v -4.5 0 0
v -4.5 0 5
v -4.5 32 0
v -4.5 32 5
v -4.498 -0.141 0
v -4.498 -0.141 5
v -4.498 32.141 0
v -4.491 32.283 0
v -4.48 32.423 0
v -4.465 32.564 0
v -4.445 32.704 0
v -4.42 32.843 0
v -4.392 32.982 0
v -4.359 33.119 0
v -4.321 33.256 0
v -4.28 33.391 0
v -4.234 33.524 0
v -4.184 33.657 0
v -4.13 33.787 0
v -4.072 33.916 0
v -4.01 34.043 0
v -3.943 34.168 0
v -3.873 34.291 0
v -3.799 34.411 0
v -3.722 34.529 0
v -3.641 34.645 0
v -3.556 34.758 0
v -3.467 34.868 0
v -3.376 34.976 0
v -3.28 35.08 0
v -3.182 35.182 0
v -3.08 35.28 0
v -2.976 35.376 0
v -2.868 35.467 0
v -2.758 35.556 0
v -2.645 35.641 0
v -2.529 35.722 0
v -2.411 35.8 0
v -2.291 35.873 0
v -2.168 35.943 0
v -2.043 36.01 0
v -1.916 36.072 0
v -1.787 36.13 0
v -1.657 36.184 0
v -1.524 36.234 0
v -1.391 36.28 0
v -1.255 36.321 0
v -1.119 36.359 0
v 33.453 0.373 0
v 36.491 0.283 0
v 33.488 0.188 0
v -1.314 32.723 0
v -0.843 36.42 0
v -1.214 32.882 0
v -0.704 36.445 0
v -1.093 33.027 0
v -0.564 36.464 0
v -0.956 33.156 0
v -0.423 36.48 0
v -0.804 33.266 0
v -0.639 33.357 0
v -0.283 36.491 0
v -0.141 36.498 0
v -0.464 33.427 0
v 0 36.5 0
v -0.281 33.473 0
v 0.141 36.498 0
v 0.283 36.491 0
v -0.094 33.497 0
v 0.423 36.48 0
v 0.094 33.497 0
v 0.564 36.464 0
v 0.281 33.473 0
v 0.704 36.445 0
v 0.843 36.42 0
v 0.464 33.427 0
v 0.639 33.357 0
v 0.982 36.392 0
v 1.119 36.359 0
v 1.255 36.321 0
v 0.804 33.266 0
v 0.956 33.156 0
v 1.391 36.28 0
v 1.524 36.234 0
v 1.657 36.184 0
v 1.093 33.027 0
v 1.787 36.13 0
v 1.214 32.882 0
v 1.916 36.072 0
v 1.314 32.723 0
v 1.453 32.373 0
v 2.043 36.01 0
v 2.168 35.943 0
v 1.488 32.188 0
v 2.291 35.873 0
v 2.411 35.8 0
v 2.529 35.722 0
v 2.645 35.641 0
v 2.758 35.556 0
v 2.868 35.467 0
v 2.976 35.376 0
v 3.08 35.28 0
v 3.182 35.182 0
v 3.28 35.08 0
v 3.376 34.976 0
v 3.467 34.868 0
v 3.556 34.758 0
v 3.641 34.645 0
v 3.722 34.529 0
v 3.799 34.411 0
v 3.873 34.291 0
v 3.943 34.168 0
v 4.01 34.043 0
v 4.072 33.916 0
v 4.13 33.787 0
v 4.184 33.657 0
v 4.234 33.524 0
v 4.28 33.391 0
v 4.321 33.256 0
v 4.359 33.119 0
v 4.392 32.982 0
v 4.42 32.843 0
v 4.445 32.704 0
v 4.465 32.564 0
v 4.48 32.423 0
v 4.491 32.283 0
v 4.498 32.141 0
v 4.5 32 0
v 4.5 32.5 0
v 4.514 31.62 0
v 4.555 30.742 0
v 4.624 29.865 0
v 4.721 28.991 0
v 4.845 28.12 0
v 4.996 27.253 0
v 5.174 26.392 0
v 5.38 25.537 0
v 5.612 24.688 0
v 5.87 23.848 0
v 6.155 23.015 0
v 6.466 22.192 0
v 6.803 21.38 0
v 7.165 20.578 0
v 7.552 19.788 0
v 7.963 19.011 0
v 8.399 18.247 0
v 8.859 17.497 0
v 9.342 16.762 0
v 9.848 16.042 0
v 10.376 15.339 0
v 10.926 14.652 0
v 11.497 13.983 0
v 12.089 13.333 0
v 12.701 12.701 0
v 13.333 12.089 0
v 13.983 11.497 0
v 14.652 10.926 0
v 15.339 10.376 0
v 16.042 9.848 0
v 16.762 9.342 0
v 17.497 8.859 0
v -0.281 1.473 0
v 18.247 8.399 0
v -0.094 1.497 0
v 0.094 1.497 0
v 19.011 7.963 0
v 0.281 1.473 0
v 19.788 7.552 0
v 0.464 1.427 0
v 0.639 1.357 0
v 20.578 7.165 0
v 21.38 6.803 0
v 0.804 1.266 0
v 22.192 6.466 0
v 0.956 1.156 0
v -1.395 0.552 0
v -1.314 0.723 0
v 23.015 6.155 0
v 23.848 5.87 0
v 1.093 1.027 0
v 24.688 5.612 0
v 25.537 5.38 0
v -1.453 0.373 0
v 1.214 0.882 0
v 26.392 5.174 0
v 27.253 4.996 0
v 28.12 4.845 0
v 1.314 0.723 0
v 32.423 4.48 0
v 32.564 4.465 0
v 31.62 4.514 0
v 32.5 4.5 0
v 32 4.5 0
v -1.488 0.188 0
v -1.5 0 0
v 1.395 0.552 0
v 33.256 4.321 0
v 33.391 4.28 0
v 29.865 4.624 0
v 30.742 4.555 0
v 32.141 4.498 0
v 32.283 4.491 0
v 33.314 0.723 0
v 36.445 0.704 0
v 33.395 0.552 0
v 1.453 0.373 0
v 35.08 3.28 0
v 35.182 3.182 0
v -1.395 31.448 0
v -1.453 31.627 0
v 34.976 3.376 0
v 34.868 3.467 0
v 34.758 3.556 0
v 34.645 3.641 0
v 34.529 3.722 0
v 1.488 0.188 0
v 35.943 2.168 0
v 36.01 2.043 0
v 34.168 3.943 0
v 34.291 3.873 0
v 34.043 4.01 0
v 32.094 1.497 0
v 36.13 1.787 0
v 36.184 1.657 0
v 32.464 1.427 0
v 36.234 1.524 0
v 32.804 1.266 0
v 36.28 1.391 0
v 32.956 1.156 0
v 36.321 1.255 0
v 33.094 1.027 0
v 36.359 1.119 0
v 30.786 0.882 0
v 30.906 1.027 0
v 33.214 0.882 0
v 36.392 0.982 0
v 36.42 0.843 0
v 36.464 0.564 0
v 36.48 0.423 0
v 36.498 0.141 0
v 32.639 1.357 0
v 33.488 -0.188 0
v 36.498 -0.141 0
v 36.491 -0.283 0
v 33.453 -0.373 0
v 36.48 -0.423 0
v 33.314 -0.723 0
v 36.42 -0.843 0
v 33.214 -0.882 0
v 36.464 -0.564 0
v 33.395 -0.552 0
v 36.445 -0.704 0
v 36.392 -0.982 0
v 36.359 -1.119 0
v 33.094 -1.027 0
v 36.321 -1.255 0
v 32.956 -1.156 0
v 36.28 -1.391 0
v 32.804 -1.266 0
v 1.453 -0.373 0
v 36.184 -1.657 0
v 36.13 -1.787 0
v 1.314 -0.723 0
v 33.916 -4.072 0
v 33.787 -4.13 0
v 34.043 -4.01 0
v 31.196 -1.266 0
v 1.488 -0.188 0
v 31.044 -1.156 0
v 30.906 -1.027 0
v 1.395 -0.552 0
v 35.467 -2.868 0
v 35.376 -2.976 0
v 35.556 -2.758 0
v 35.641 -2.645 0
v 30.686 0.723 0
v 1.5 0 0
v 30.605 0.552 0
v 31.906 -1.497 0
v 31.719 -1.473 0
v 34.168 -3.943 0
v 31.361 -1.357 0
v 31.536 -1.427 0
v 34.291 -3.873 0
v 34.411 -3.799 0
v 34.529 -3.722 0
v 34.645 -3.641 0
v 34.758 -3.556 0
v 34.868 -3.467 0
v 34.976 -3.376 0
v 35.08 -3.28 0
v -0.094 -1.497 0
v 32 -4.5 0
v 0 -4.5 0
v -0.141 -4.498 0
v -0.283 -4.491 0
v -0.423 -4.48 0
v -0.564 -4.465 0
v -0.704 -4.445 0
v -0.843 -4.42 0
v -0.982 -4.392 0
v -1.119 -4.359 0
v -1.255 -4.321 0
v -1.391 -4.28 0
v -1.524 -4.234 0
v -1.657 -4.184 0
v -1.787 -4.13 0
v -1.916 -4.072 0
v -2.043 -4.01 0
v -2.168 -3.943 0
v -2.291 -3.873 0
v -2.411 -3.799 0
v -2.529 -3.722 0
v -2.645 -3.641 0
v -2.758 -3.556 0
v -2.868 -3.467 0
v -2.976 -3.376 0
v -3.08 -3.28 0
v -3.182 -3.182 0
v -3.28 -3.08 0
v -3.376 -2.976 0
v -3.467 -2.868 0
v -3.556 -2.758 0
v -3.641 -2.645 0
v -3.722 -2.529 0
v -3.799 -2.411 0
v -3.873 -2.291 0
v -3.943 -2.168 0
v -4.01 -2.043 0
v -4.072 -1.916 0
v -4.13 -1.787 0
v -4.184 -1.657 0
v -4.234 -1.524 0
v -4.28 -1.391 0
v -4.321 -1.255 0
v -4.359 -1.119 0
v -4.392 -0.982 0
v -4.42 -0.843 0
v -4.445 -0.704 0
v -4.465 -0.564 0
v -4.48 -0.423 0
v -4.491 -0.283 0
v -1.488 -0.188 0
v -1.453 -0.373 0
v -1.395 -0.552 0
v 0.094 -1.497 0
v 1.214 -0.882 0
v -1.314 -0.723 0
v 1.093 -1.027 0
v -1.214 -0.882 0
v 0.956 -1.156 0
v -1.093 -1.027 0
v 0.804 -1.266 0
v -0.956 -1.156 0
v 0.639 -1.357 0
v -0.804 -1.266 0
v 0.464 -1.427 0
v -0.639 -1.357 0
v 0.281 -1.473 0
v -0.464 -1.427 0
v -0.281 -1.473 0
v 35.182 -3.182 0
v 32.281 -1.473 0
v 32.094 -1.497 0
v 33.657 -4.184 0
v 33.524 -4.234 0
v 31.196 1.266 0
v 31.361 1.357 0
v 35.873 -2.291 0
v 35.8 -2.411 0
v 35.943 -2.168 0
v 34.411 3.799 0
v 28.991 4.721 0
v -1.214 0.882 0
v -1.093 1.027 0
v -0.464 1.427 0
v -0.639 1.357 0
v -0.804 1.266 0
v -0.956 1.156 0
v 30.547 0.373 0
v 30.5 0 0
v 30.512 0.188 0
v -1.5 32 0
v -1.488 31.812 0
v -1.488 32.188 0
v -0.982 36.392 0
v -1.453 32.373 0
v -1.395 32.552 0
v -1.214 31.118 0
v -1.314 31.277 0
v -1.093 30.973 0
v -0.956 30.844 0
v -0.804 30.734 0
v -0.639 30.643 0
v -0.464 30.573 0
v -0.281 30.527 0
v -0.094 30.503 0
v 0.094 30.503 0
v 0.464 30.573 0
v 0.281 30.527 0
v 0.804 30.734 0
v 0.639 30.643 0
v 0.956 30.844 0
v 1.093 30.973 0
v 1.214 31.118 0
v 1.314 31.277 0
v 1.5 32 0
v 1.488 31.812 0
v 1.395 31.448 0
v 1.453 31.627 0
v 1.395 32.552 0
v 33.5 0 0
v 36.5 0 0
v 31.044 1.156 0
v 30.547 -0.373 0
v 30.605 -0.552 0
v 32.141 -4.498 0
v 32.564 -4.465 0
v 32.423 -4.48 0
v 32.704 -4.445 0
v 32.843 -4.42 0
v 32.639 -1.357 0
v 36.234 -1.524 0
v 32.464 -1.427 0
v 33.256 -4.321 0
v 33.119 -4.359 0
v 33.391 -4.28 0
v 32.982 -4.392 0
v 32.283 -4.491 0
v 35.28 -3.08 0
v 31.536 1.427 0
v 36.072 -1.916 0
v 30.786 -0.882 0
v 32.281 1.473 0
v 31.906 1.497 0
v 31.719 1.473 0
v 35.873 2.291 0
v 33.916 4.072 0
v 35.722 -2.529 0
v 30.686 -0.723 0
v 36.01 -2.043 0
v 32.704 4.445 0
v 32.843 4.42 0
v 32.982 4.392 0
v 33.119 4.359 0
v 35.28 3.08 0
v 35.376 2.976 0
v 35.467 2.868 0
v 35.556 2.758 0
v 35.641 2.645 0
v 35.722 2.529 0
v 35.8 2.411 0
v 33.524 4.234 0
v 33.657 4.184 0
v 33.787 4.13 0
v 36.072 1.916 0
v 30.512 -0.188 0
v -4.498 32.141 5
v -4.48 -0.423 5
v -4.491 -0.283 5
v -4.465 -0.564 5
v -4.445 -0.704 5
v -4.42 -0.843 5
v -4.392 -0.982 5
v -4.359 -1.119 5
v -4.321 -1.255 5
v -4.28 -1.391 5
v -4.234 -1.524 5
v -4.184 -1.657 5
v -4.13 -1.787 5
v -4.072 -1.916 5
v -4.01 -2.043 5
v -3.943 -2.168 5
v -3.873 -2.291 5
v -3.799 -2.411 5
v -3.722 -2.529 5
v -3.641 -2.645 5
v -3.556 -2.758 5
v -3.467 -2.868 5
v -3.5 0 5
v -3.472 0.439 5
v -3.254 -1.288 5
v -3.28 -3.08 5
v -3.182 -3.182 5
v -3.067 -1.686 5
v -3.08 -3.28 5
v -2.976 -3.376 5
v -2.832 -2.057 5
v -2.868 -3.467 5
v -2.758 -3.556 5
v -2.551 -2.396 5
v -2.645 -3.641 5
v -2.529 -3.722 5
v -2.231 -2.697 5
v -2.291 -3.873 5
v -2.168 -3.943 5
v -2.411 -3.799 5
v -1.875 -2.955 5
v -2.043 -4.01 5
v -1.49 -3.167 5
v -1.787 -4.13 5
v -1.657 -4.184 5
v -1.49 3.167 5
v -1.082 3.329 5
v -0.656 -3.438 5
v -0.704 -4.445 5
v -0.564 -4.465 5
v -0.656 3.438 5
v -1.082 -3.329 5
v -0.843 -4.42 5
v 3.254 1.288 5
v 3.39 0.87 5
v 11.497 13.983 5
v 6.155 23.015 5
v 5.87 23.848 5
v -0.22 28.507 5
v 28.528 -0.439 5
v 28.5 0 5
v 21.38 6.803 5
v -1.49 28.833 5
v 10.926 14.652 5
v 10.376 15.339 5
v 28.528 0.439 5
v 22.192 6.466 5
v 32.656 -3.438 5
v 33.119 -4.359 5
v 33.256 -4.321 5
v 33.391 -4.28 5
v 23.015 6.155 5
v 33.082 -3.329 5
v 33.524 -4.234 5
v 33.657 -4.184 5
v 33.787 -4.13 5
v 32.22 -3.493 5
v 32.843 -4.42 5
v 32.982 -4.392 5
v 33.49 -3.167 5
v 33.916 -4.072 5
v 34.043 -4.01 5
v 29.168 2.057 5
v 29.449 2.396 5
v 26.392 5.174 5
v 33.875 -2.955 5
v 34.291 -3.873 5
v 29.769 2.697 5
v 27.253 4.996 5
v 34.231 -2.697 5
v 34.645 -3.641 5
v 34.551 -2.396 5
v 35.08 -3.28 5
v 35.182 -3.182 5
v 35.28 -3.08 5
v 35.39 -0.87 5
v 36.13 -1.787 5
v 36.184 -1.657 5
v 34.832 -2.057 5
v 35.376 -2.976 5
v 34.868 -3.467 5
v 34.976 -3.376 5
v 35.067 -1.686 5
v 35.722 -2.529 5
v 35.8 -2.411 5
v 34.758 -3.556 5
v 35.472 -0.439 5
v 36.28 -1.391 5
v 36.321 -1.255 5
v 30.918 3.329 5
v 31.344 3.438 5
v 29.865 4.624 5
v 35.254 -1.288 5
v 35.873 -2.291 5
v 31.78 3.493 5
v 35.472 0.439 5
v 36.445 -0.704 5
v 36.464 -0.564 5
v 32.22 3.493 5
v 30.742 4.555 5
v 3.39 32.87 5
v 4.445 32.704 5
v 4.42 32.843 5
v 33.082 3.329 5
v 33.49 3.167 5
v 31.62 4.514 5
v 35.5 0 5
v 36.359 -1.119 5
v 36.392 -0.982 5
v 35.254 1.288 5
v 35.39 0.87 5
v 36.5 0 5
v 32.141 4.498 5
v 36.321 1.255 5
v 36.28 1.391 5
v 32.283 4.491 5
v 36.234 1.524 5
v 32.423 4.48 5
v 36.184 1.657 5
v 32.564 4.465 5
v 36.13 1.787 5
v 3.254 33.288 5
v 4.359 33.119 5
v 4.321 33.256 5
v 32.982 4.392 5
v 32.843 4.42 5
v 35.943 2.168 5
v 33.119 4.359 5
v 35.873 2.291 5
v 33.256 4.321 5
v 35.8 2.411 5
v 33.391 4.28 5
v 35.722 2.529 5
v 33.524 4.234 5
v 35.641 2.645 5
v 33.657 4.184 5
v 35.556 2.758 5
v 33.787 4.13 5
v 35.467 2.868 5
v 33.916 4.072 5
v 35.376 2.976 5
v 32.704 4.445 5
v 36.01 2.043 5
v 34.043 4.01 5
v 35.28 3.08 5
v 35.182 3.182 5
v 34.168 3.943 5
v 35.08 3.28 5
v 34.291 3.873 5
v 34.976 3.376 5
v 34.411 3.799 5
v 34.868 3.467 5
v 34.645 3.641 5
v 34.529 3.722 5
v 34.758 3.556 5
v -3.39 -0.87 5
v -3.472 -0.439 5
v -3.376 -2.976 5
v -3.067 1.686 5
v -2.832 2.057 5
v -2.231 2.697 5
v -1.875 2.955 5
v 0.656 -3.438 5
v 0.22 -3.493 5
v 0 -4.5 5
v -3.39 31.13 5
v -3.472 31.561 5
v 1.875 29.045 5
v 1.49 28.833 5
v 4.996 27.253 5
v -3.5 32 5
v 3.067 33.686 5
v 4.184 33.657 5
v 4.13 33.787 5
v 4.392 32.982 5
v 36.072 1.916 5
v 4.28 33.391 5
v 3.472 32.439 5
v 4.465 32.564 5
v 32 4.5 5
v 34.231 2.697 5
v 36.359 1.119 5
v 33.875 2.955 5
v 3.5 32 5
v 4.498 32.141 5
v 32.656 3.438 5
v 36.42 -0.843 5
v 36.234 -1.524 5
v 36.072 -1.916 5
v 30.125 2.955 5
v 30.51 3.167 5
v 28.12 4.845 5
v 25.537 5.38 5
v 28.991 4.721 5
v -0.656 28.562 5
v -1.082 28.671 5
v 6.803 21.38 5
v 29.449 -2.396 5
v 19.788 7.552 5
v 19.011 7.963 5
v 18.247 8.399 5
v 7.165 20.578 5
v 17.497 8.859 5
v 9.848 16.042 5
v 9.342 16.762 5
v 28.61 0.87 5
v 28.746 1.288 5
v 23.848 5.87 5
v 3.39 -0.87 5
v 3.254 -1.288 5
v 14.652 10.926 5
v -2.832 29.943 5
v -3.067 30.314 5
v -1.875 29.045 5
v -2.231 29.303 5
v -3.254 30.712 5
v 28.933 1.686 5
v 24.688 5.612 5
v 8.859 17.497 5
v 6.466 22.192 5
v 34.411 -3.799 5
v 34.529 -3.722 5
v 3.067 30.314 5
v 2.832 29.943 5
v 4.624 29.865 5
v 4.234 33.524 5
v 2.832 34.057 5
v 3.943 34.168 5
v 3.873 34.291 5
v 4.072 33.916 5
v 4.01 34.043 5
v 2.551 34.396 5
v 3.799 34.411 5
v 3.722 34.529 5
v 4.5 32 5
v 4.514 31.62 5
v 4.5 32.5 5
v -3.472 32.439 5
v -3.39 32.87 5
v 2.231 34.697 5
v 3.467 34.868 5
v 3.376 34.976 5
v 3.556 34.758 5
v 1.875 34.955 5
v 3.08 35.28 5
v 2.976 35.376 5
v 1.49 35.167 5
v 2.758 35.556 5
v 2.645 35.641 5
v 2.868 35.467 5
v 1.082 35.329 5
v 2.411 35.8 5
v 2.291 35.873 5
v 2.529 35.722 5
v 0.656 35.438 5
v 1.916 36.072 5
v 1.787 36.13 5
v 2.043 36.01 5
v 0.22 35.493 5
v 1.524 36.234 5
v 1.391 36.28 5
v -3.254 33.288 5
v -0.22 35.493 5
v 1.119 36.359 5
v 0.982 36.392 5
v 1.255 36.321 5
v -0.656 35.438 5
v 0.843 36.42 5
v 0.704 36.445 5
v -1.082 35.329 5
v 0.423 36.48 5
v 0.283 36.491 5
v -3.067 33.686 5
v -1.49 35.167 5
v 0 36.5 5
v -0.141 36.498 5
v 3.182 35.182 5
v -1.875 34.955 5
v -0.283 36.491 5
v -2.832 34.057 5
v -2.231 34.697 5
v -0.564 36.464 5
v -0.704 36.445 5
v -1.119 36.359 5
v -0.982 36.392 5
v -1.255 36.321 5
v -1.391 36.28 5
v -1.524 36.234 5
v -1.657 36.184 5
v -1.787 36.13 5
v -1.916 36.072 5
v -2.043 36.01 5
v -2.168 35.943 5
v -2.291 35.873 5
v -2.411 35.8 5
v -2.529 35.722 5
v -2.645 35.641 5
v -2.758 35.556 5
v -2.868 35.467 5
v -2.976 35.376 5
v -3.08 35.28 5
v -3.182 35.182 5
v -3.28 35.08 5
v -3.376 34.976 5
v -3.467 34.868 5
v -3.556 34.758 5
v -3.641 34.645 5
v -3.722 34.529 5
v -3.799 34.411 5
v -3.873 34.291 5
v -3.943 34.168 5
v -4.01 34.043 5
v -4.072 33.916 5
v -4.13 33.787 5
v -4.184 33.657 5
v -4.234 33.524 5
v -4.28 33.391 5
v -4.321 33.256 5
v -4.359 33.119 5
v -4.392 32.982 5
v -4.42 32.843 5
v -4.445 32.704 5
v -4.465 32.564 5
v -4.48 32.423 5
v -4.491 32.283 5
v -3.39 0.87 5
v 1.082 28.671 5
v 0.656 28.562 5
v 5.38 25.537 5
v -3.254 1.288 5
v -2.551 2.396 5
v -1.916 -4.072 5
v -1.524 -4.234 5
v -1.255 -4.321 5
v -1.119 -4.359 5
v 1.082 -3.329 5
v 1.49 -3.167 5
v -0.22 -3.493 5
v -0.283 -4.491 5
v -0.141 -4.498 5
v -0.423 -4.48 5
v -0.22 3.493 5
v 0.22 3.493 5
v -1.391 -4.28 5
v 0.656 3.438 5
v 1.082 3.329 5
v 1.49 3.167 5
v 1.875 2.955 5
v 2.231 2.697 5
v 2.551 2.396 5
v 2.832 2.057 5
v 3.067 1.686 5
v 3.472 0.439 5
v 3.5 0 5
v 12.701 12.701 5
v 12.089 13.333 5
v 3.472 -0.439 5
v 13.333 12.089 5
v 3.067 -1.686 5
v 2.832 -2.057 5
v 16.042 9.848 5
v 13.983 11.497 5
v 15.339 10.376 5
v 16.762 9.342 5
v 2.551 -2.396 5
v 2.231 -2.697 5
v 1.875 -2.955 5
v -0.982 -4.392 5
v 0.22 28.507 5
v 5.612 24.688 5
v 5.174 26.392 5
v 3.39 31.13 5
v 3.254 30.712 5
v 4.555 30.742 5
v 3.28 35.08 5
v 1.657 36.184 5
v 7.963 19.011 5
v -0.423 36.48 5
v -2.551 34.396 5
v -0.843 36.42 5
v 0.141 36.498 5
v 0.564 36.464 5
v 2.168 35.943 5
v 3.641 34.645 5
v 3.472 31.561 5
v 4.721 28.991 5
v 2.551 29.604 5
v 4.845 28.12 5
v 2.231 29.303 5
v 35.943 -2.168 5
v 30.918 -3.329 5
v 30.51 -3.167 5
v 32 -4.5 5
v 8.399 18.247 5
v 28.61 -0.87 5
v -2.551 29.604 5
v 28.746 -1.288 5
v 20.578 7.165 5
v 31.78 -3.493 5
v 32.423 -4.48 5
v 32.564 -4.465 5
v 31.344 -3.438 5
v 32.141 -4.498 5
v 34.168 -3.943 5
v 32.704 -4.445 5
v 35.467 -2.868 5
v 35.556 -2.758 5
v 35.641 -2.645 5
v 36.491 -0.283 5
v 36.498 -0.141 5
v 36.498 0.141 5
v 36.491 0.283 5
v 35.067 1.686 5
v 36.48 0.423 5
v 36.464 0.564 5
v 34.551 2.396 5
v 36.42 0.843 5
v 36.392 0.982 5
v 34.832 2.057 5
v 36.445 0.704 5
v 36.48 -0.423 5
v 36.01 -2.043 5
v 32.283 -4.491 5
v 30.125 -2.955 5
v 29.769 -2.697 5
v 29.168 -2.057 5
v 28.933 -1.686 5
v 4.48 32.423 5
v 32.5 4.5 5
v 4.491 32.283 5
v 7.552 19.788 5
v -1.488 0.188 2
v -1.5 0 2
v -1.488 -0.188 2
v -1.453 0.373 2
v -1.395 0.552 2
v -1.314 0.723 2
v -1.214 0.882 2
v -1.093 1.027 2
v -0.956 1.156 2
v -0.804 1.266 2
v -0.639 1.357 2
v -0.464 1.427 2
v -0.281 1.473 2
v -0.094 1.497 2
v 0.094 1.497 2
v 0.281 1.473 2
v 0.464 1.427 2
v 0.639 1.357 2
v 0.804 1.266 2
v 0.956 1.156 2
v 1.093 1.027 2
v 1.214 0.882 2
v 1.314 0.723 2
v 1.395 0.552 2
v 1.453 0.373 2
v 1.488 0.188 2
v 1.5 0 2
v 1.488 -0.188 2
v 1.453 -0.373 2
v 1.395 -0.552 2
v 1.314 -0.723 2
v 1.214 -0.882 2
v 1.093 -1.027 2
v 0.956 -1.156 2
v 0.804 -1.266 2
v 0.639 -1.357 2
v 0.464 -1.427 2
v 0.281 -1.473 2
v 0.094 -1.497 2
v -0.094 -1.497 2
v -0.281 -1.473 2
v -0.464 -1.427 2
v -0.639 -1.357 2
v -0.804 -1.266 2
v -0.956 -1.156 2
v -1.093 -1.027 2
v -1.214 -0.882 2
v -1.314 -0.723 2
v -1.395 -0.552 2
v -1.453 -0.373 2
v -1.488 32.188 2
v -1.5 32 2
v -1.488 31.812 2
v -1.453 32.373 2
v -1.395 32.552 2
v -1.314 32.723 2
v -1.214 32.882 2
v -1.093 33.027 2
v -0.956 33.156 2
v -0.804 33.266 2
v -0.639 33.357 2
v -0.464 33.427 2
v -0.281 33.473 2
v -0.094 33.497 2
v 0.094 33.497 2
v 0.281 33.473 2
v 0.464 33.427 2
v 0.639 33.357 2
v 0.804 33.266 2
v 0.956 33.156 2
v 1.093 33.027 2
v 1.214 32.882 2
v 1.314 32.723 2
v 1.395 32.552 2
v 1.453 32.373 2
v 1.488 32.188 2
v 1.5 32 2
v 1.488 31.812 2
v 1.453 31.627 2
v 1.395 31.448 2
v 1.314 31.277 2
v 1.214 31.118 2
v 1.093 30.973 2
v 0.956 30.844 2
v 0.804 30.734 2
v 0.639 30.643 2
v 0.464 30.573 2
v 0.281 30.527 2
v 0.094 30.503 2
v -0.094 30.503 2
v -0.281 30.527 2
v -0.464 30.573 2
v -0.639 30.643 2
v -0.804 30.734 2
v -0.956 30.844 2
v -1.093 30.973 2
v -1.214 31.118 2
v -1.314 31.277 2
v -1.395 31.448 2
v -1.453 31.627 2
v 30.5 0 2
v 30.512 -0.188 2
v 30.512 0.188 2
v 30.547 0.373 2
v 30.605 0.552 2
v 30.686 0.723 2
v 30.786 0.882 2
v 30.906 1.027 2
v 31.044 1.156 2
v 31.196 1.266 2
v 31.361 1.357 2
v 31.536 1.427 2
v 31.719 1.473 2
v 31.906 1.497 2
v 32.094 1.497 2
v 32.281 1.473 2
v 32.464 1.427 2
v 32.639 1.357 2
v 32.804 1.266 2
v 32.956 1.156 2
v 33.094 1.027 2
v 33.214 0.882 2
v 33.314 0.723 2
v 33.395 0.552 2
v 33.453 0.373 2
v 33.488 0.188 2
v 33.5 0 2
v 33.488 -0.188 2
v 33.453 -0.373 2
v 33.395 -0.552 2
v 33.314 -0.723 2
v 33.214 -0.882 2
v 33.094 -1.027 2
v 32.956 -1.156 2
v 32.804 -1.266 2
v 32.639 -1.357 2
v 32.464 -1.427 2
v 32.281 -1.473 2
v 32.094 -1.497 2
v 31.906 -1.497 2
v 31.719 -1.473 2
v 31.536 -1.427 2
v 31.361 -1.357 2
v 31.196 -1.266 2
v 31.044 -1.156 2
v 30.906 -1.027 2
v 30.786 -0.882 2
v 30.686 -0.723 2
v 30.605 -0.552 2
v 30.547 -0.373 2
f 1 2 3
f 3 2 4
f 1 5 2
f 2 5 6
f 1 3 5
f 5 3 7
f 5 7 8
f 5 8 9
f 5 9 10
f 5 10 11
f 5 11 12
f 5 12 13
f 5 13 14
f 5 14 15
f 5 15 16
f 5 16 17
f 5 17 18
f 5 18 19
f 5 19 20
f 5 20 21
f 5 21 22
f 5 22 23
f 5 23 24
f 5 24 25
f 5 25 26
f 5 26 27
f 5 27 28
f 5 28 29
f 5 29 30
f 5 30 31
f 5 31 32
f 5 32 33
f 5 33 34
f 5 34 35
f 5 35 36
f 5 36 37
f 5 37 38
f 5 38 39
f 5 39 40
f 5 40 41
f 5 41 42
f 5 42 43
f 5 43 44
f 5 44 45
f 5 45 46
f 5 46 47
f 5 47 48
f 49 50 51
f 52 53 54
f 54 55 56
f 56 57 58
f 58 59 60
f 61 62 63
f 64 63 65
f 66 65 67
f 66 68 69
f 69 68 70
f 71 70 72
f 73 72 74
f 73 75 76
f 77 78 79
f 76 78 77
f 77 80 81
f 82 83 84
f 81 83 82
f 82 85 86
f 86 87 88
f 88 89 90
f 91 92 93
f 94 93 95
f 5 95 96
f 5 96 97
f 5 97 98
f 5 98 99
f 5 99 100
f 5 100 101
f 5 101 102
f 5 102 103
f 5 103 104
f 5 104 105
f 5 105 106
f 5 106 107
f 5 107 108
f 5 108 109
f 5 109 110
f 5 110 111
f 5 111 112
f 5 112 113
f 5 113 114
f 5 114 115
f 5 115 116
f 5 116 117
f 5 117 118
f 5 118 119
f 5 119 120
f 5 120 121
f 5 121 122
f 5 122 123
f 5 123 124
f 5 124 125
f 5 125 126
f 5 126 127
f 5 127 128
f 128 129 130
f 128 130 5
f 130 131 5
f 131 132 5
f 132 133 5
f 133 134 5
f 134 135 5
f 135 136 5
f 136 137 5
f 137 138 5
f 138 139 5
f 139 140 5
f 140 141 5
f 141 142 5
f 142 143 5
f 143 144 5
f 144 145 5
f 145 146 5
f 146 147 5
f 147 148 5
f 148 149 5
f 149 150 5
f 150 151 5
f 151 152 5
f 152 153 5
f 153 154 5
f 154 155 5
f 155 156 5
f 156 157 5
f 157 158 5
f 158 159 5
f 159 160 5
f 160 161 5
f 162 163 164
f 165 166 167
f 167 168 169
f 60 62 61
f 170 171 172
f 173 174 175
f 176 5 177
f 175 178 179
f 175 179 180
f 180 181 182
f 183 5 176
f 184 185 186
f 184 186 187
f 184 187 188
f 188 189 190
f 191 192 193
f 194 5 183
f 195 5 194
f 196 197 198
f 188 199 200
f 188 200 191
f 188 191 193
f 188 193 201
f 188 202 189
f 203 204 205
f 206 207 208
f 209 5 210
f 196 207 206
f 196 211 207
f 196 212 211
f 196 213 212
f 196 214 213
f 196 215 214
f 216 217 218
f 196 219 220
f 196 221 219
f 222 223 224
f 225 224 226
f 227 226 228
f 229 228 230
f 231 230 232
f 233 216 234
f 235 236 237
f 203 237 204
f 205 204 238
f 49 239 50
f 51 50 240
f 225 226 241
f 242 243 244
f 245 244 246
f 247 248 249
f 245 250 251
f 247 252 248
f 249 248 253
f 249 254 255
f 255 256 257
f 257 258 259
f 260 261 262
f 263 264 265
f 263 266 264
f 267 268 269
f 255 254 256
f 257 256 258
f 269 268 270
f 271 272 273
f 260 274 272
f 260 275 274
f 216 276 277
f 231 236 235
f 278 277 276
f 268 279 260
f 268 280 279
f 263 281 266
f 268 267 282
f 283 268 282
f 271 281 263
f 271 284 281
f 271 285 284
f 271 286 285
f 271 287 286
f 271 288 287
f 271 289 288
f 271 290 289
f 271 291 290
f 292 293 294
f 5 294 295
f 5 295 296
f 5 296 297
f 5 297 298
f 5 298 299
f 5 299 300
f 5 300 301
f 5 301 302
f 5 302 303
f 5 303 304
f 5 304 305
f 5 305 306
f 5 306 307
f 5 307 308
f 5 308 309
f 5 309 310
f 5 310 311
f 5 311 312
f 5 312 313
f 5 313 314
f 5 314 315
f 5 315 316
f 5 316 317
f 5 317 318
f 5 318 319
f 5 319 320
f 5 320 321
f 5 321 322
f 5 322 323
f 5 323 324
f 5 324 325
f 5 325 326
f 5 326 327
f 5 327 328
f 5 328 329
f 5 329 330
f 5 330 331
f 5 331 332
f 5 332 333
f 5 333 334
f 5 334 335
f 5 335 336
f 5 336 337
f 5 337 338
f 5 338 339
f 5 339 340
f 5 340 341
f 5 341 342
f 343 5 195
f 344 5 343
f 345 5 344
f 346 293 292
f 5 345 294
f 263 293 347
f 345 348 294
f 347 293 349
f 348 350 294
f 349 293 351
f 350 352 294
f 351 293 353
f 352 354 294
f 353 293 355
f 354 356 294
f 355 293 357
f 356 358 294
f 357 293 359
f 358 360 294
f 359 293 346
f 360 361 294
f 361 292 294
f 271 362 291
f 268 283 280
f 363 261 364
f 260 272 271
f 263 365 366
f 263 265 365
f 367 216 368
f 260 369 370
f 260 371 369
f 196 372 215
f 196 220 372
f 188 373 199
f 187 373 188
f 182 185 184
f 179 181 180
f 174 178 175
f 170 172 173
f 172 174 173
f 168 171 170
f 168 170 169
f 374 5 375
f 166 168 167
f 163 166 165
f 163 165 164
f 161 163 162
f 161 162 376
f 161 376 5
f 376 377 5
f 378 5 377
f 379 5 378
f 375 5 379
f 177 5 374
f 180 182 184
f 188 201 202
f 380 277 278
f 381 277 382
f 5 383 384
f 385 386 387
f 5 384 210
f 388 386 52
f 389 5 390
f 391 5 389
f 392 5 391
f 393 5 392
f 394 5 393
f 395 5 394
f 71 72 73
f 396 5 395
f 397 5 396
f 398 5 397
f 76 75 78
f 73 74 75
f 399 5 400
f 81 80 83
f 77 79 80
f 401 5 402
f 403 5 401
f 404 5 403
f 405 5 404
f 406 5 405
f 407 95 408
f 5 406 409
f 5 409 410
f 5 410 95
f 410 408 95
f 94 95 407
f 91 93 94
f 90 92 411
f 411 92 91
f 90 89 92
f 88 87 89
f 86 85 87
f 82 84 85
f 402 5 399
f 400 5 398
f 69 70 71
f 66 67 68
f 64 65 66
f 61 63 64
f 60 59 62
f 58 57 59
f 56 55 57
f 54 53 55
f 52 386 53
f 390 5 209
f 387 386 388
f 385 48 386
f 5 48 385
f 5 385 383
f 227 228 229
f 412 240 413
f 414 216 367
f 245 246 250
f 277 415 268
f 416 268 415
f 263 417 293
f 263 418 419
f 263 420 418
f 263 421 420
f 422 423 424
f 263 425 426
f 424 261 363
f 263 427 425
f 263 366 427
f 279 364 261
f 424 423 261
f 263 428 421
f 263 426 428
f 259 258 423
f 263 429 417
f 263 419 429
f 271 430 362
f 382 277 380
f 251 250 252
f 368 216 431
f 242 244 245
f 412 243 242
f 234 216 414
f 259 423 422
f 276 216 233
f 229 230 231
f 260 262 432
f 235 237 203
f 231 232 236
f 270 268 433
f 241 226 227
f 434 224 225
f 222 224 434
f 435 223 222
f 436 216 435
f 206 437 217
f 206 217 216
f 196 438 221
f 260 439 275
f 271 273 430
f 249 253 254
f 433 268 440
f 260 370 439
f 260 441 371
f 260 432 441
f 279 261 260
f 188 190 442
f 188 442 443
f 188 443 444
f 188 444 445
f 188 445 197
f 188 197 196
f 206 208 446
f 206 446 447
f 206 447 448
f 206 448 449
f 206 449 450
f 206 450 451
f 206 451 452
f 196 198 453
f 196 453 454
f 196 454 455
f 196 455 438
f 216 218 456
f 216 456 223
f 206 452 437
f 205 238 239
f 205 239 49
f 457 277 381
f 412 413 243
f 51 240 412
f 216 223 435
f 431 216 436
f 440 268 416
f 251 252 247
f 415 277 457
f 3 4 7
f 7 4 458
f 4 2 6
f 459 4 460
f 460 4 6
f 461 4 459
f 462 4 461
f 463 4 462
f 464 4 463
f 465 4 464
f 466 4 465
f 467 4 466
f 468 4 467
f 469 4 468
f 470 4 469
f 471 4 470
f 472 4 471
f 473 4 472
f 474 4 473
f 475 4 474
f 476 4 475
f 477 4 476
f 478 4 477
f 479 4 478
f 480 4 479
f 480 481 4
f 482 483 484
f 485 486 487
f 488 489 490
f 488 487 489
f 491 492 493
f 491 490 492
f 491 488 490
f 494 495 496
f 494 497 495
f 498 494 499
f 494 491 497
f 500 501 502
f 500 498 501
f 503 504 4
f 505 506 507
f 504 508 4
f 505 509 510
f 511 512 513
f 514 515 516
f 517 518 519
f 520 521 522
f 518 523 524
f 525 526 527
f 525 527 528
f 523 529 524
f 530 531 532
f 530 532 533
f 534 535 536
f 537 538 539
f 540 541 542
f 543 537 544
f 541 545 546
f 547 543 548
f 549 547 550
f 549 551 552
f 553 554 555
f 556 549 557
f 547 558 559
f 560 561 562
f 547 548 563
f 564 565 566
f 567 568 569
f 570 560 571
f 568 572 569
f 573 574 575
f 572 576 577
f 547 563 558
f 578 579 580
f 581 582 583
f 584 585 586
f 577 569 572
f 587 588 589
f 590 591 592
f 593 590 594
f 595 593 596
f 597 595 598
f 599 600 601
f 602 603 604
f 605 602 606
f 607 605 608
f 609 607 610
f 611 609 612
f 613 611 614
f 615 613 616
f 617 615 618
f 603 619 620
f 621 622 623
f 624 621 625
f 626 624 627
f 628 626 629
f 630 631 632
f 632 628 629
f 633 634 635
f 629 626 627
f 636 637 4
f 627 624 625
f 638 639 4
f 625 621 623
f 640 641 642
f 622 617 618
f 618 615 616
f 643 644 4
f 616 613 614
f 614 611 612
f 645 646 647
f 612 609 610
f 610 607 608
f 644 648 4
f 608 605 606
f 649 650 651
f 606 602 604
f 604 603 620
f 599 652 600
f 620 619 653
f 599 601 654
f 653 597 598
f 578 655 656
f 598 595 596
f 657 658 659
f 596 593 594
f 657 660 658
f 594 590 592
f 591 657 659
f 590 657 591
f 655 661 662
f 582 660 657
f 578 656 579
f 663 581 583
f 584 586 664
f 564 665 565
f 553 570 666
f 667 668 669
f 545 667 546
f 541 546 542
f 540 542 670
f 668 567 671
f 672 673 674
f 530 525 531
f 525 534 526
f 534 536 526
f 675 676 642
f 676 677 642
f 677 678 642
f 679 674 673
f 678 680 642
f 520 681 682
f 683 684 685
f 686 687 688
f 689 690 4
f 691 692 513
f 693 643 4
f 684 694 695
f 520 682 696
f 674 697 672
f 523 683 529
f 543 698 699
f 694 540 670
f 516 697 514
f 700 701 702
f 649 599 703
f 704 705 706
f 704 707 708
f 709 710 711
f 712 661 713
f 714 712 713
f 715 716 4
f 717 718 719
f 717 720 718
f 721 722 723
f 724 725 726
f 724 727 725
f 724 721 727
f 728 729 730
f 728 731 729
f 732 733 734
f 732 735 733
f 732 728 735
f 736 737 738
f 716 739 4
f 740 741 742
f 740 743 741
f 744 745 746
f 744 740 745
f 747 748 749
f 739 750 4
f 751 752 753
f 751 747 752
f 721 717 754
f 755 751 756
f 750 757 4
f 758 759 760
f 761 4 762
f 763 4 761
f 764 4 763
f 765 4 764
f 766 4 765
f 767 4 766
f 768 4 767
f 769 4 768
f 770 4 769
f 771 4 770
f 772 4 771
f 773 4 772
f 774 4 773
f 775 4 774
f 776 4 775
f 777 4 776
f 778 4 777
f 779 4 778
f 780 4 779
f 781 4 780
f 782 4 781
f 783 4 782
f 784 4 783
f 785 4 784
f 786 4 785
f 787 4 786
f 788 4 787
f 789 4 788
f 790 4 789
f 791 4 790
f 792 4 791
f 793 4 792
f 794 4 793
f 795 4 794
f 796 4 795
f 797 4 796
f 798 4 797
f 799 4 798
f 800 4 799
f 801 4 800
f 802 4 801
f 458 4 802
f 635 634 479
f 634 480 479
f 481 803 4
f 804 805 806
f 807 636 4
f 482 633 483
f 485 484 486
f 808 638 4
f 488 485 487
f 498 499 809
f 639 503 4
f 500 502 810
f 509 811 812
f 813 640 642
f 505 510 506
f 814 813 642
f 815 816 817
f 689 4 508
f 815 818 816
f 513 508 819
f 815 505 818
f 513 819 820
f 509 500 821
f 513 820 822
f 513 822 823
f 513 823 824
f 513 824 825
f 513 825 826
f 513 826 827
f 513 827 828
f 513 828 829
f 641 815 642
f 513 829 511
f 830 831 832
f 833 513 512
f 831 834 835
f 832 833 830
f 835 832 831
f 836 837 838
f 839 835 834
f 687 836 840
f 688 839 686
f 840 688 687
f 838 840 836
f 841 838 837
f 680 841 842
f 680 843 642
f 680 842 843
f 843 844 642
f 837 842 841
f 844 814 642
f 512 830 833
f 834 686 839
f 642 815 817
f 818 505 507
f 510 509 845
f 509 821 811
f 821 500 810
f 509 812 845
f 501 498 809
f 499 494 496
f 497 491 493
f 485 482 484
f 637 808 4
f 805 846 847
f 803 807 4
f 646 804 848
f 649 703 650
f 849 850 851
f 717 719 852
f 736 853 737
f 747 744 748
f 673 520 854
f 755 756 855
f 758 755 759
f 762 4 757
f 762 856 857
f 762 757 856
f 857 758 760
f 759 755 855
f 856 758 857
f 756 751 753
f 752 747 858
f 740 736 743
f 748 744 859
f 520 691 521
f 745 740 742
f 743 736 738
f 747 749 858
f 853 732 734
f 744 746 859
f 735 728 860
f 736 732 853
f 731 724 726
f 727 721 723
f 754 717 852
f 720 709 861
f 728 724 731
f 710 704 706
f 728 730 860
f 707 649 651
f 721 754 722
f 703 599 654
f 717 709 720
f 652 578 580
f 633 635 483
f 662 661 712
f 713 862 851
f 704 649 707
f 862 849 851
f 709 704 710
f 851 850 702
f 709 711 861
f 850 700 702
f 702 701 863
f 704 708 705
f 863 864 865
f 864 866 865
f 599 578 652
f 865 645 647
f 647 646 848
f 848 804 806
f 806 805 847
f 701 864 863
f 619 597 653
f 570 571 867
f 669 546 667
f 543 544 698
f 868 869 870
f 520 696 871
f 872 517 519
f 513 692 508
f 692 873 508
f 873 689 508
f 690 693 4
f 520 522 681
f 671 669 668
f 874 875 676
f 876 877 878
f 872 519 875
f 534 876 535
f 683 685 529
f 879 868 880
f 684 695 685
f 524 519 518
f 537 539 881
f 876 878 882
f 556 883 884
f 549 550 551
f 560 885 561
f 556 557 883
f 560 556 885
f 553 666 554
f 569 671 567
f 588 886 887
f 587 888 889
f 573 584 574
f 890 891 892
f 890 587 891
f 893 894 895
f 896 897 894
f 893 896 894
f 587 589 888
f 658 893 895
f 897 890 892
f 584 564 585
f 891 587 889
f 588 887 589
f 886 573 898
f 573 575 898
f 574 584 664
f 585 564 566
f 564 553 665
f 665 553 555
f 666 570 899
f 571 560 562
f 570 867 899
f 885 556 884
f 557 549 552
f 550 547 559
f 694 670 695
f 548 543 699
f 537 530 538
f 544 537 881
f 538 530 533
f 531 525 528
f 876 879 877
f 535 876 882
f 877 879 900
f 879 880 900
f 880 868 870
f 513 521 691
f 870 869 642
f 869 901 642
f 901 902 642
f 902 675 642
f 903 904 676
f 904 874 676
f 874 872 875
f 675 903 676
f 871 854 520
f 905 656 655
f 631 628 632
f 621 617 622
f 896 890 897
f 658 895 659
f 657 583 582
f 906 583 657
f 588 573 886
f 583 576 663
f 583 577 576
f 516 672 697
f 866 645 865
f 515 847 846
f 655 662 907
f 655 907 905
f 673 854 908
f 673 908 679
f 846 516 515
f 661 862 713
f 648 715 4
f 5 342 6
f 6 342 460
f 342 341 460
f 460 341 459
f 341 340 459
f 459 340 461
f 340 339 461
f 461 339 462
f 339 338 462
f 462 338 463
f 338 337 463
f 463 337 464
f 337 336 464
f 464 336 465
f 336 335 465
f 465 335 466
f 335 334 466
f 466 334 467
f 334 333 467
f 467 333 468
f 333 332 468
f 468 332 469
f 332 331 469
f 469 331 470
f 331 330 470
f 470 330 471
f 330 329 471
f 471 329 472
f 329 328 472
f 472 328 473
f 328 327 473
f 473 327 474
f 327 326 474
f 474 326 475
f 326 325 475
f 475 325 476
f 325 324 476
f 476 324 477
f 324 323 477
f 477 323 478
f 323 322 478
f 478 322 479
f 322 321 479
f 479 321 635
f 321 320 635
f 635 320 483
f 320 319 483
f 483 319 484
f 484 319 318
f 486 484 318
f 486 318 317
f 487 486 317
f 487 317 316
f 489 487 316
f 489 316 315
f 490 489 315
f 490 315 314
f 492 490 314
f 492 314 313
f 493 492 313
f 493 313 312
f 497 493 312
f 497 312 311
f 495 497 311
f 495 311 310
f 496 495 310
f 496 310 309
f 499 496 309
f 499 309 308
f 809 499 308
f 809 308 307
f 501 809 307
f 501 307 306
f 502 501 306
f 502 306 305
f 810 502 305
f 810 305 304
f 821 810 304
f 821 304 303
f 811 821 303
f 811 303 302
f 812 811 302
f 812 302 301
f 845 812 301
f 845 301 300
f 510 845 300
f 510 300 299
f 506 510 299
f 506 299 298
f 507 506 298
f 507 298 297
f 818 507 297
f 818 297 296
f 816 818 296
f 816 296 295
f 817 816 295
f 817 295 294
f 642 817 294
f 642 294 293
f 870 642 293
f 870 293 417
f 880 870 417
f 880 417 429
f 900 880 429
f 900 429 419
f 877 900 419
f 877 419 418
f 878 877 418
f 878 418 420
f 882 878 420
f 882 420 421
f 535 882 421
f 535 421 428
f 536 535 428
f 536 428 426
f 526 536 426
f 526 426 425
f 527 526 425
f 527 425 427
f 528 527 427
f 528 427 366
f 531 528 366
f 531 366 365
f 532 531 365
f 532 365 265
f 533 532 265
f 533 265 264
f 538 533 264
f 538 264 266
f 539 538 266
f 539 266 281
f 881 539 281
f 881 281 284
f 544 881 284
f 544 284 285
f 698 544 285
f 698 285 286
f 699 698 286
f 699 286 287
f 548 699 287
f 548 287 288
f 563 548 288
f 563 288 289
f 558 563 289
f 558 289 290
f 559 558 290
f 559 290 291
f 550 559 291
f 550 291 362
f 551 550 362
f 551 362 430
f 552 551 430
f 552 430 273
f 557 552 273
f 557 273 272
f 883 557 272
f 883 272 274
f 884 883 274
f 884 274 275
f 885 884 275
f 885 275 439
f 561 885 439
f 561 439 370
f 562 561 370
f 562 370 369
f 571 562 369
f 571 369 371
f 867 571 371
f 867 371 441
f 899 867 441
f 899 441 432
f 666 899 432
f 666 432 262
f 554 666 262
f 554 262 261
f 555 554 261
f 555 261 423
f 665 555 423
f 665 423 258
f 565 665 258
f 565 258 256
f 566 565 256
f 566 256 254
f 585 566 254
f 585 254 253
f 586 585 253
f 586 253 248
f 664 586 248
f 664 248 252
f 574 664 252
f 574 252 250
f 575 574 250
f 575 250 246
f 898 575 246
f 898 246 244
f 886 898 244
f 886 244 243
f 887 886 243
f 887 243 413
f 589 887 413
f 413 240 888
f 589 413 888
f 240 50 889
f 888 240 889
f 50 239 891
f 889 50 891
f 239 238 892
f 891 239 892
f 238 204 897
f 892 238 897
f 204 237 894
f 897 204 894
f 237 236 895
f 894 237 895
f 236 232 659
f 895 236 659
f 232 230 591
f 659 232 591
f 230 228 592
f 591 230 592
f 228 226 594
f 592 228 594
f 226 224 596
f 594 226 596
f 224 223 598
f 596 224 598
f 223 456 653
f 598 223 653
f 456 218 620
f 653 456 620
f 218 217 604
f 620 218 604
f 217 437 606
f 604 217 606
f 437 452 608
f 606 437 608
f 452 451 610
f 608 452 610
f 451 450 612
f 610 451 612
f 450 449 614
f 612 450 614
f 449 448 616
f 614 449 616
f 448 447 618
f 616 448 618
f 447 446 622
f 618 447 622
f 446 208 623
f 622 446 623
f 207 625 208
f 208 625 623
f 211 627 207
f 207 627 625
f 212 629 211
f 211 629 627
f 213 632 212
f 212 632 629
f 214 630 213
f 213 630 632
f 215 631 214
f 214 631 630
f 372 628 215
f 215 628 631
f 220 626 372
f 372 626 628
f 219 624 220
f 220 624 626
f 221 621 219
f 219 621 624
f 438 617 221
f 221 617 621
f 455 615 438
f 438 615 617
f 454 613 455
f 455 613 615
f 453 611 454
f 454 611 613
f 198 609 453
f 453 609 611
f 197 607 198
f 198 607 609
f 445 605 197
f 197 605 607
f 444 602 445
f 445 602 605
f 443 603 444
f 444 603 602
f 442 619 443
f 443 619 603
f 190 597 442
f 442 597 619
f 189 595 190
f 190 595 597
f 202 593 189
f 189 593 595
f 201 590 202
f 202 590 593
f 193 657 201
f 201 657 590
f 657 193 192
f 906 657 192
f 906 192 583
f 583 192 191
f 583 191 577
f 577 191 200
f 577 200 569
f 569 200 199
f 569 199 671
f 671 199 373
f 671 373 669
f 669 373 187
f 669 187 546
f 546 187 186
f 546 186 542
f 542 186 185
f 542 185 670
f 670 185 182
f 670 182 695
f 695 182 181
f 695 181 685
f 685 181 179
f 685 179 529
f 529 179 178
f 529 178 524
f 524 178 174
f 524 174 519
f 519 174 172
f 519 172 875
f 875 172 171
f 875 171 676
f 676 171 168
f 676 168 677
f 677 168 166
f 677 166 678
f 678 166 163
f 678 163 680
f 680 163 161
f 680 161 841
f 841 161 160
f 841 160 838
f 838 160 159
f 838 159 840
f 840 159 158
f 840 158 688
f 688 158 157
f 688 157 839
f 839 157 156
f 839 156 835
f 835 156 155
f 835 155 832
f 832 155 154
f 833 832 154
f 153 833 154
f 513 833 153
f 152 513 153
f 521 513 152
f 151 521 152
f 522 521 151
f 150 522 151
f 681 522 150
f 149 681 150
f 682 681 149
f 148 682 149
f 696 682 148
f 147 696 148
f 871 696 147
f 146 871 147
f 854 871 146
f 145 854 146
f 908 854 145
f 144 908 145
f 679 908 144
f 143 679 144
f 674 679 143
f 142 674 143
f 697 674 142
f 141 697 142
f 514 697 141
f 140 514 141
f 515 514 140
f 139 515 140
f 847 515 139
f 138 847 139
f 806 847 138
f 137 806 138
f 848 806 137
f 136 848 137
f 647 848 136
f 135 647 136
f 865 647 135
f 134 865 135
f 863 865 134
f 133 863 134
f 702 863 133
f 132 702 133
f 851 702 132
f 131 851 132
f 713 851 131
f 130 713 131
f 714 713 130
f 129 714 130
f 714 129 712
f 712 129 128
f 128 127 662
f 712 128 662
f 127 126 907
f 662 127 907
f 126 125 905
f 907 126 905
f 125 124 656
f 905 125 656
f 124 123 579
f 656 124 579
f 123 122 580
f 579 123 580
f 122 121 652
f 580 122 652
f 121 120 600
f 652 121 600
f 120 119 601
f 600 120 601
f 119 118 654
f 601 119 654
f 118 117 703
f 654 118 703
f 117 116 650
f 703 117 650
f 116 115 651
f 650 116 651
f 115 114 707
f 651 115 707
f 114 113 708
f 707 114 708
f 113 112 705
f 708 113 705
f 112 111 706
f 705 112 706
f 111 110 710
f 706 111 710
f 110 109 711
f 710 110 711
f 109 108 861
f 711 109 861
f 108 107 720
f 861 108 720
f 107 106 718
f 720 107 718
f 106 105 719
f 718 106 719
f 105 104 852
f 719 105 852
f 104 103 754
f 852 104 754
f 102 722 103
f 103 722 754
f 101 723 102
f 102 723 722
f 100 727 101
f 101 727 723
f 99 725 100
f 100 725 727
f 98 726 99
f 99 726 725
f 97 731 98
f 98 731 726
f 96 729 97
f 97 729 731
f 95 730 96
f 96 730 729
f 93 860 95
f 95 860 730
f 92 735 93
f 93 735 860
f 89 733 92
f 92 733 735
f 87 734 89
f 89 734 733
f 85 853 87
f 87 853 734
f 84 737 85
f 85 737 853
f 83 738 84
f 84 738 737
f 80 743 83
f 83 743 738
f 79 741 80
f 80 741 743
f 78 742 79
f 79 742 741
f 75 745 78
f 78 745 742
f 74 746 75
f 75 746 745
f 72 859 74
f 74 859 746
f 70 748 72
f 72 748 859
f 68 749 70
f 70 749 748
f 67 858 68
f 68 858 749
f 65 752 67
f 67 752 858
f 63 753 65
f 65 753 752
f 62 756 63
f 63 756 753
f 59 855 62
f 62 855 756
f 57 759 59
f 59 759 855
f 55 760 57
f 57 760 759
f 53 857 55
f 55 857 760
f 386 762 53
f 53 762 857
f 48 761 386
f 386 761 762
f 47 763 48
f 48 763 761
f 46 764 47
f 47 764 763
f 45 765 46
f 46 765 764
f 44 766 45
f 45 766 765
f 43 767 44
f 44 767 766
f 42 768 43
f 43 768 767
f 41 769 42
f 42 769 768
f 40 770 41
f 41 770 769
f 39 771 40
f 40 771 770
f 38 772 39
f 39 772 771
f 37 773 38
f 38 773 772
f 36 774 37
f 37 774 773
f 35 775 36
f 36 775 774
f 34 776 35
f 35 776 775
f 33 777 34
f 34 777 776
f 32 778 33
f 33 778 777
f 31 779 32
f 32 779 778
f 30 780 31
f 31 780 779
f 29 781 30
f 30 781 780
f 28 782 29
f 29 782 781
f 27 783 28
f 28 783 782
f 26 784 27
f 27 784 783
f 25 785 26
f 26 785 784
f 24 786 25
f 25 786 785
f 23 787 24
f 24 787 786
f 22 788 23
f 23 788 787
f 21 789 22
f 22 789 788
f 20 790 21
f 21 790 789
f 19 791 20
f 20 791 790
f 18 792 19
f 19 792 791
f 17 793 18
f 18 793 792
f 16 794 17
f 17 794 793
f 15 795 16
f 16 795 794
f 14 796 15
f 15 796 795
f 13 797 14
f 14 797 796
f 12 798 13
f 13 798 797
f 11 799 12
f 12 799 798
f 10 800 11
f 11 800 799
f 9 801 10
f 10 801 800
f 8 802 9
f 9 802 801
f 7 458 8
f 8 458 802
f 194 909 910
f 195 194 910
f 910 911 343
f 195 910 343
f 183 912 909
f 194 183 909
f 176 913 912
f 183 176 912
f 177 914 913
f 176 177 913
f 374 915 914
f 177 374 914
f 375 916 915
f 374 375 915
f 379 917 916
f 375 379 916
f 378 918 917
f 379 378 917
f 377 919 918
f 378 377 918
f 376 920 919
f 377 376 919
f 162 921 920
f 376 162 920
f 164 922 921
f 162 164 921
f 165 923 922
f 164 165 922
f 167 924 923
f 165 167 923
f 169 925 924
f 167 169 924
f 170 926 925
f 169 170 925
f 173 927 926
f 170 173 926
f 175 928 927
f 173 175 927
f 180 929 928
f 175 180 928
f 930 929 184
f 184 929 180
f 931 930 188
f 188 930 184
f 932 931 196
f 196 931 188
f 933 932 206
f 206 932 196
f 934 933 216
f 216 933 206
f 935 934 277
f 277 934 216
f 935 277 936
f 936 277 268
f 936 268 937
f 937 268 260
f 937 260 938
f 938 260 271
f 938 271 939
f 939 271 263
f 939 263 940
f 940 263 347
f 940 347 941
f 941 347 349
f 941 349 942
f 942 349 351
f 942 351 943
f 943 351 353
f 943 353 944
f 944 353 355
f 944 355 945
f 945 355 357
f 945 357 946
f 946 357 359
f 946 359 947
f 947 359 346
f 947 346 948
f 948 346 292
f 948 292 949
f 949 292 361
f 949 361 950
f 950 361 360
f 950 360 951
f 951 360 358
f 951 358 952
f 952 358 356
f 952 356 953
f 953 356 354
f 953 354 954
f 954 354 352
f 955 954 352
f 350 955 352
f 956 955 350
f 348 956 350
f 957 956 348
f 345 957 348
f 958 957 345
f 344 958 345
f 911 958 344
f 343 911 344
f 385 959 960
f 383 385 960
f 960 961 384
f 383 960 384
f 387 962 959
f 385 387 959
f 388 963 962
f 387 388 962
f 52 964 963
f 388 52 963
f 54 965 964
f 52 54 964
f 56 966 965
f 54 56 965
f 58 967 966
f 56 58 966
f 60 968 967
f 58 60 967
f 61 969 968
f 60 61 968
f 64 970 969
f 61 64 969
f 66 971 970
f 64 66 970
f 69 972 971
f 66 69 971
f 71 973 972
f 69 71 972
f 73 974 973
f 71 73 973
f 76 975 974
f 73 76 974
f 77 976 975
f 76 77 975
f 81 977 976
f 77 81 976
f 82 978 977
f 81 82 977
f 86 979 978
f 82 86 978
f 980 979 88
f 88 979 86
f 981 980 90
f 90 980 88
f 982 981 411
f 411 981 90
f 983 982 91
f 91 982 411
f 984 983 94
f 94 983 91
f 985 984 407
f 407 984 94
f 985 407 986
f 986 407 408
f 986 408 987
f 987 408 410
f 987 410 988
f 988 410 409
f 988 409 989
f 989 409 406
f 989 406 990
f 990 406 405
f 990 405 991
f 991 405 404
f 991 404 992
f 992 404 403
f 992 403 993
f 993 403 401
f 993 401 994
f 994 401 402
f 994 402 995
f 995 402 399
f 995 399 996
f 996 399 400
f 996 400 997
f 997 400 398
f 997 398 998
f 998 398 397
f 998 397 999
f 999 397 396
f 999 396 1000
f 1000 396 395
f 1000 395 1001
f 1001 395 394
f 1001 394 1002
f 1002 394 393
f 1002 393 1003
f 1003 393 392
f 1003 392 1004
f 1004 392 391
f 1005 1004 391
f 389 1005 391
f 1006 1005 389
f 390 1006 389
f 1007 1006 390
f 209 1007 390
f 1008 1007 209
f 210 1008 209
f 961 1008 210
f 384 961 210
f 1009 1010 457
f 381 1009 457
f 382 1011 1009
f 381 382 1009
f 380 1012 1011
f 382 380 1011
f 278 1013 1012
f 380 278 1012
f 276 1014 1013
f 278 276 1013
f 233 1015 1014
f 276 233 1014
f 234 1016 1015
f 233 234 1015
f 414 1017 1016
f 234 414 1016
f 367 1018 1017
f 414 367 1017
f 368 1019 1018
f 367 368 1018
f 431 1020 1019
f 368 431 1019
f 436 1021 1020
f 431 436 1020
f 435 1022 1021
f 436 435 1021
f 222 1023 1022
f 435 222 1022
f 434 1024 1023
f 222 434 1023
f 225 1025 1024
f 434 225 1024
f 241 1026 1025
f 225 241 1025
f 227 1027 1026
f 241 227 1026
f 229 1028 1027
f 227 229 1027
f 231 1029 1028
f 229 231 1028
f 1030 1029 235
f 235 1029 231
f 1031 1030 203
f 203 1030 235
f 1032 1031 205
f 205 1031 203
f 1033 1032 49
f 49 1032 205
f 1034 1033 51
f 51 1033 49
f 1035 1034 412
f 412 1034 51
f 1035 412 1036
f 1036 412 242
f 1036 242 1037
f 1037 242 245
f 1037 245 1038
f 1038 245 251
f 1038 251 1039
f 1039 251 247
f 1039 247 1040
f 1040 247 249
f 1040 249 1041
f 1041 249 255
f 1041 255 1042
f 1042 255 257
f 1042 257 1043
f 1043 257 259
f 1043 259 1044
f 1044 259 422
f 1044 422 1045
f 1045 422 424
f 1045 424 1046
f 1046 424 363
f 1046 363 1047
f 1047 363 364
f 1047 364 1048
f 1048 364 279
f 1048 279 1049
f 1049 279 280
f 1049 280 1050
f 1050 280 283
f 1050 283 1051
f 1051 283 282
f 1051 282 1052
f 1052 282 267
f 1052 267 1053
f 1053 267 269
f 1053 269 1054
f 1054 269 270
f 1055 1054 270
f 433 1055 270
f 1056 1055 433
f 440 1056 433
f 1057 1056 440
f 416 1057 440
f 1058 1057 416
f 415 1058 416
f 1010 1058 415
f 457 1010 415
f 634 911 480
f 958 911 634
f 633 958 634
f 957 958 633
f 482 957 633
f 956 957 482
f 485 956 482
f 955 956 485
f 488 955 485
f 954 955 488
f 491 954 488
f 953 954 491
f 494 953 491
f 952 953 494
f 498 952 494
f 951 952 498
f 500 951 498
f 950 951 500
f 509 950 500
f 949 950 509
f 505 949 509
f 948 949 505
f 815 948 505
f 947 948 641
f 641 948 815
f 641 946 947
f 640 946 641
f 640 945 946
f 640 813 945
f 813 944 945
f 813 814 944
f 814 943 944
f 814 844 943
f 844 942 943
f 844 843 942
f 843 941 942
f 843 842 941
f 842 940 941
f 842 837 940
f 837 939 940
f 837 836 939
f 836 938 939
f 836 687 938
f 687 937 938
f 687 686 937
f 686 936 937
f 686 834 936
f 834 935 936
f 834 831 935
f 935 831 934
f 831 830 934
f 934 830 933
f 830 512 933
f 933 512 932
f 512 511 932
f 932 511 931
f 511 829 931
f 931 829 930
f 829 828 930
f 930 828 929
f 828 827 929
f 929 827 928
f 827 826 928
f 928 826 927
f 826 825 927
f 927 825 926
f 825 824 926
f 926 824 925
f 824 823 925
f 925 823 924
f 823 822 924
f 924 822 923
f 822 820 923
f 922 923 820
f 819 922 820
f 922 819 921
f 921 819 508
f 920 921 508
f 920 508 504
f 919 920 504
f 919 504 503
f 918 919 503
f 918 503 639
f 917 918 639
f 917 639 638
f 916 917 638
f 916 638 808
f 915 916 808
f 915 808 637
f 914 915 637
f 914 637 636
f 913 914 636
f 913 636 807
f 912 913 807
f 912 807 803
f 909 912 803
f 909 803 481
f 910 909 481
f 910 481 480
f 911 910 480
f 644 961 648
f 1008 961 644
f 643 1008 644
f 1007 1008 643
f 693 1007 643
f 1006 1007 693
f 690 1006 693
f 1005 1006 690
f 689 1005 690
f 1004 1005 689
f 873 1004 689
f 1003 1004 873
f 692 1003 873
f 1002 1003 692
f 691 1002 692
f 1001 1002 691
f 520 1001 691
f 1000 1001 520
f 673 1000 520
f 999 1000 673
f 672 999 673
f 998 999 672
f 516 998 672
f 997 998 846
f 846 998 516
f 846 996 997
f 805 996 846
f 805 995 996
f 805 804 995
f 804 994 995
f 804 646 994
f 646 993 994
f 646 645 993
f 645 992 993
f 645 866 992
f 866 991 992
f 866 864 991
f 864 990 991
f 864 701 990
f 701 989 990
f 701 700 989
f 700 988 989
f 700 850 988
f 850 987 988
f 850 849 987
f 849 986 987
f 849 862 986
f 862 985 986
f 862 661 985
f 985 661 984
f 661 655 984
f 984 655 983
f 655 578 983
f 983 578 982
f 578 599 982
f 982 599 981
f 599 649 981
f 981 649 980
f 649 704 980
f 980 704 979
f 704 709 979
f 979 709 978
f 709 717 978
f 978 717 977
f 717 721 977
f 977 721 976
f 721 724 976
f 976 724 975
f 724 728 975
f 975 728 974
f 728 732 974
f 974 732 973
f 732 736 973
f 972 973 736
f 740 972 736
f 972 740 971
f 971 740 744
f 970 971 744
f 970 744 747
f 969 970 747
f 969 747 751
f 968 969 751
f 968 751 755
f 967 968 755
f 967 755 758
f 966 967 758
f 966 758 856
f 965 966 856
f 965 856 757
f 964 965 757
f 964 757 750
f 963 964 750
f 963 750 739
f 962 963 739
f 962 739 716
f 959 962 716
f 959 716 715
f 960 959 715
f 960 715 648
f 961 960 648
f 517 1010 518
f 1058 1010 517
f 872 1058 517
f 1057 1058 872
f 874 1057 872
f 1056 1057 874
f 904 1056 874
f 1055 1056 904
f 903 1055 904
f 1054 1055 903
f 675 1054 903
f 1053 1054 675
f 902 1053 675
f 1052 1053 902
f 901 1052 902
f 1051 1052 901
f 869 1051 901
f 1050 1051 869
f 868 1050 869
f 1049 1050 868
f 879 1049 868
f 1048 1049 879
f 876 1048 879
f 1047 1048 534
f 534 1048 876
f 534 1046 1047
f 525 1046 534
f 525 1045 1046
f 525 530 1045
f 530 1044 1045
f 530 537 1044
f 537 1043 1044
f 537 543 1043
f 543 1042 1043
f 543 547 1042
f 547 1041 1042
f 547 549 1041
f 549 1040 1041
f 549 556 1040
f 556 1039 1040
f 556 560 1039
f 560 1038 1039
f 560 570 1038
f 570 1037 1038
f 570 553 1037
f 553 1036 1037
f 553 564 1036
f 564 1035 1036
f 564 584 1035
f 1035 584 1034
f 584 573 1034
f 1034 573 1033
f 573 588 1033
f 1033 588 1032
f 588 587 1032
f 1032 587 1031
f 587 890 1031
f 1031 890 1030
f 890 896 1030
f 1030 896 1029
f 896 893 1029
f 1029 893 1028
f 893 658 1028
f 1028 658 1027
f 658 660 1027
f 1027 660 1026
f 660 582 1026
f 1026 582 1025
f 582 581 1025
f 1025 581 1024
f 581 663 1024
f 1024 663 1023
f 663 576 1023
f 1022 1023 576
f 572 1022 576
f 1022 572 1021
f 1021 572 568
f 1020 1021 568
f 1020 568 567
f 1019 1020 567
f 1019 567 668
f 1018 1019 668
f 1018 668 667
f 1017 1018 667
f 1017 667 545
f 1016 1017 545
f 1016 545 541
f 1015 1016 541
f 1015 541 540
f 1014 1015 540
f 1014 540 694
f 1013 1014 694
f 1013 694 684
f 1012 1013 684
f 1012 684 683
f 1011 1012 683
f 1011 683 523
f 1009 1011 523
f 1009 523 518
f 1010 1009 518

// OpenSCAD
r_m3=2;
r_trou=1.5;
r_tete=3.5;
ep=5;
rayon=4.5;
long=41;

module arrondi(RAYON,EP){
	difference(){
		cube([RAYON*2,RAYON*2,EP]);

		translate([RAYON,RAYON,-5])cylinder(r=RAYON, h=EP+10, $fn=200);

		translate([RAYON,-5,-5])cube([RAYON*2+10,RAYON*2+10,EP+10]);
		translate([-5,RAYON,-5])cube([RAYON*2+10,RAYON*2+10,EP+10]);

	}
}

module gousset(){
	difference(){
		union(){
			hull(){
				cylinder(h = ep, r = rayon, $fn=200);
				translate([long-rayon*2,0,0]){cylinder(h = ep, r = rayon, $fn=200);}
			}

			hull(){
				cylinder(h = ep, r = rayon, $fn=200);
				translate([0,long-rayon*2,0]){cylinder(h = ep, r = rayon, $fn=200);}
			}

			//arrondi de gousset
			translate([rayon,rayon,0]){arrondi(long-rayon*2-4,5);}

		}

		

		//trous de vissage
		translate([0,0,-5]){cylinder(h = 15, r = r_trou, $fn=50);}
		translate([0,0,2]){cylinder(h = 3, r1 = r_trou, r2=r_tete, $fn=50);}

		translate([long-rayon*2,0,-5]){cylinder(h = 15, r = r_trou, $fn=50);}
		translate([long-rayon*2,0,2]){cylinder(h = 3, r1 = r_trou, r2=r_tete, $fn=50);}

		translate([0,long-rayon*2,-5]){cylinder(h = 15, r = r_trou, $fn=50);}
		translate([0,long-rayon*2,2]){cylinder(h = 3, r1 = r_trou, r2=r_tete, $fn=50);}

	}
}

gousset();
